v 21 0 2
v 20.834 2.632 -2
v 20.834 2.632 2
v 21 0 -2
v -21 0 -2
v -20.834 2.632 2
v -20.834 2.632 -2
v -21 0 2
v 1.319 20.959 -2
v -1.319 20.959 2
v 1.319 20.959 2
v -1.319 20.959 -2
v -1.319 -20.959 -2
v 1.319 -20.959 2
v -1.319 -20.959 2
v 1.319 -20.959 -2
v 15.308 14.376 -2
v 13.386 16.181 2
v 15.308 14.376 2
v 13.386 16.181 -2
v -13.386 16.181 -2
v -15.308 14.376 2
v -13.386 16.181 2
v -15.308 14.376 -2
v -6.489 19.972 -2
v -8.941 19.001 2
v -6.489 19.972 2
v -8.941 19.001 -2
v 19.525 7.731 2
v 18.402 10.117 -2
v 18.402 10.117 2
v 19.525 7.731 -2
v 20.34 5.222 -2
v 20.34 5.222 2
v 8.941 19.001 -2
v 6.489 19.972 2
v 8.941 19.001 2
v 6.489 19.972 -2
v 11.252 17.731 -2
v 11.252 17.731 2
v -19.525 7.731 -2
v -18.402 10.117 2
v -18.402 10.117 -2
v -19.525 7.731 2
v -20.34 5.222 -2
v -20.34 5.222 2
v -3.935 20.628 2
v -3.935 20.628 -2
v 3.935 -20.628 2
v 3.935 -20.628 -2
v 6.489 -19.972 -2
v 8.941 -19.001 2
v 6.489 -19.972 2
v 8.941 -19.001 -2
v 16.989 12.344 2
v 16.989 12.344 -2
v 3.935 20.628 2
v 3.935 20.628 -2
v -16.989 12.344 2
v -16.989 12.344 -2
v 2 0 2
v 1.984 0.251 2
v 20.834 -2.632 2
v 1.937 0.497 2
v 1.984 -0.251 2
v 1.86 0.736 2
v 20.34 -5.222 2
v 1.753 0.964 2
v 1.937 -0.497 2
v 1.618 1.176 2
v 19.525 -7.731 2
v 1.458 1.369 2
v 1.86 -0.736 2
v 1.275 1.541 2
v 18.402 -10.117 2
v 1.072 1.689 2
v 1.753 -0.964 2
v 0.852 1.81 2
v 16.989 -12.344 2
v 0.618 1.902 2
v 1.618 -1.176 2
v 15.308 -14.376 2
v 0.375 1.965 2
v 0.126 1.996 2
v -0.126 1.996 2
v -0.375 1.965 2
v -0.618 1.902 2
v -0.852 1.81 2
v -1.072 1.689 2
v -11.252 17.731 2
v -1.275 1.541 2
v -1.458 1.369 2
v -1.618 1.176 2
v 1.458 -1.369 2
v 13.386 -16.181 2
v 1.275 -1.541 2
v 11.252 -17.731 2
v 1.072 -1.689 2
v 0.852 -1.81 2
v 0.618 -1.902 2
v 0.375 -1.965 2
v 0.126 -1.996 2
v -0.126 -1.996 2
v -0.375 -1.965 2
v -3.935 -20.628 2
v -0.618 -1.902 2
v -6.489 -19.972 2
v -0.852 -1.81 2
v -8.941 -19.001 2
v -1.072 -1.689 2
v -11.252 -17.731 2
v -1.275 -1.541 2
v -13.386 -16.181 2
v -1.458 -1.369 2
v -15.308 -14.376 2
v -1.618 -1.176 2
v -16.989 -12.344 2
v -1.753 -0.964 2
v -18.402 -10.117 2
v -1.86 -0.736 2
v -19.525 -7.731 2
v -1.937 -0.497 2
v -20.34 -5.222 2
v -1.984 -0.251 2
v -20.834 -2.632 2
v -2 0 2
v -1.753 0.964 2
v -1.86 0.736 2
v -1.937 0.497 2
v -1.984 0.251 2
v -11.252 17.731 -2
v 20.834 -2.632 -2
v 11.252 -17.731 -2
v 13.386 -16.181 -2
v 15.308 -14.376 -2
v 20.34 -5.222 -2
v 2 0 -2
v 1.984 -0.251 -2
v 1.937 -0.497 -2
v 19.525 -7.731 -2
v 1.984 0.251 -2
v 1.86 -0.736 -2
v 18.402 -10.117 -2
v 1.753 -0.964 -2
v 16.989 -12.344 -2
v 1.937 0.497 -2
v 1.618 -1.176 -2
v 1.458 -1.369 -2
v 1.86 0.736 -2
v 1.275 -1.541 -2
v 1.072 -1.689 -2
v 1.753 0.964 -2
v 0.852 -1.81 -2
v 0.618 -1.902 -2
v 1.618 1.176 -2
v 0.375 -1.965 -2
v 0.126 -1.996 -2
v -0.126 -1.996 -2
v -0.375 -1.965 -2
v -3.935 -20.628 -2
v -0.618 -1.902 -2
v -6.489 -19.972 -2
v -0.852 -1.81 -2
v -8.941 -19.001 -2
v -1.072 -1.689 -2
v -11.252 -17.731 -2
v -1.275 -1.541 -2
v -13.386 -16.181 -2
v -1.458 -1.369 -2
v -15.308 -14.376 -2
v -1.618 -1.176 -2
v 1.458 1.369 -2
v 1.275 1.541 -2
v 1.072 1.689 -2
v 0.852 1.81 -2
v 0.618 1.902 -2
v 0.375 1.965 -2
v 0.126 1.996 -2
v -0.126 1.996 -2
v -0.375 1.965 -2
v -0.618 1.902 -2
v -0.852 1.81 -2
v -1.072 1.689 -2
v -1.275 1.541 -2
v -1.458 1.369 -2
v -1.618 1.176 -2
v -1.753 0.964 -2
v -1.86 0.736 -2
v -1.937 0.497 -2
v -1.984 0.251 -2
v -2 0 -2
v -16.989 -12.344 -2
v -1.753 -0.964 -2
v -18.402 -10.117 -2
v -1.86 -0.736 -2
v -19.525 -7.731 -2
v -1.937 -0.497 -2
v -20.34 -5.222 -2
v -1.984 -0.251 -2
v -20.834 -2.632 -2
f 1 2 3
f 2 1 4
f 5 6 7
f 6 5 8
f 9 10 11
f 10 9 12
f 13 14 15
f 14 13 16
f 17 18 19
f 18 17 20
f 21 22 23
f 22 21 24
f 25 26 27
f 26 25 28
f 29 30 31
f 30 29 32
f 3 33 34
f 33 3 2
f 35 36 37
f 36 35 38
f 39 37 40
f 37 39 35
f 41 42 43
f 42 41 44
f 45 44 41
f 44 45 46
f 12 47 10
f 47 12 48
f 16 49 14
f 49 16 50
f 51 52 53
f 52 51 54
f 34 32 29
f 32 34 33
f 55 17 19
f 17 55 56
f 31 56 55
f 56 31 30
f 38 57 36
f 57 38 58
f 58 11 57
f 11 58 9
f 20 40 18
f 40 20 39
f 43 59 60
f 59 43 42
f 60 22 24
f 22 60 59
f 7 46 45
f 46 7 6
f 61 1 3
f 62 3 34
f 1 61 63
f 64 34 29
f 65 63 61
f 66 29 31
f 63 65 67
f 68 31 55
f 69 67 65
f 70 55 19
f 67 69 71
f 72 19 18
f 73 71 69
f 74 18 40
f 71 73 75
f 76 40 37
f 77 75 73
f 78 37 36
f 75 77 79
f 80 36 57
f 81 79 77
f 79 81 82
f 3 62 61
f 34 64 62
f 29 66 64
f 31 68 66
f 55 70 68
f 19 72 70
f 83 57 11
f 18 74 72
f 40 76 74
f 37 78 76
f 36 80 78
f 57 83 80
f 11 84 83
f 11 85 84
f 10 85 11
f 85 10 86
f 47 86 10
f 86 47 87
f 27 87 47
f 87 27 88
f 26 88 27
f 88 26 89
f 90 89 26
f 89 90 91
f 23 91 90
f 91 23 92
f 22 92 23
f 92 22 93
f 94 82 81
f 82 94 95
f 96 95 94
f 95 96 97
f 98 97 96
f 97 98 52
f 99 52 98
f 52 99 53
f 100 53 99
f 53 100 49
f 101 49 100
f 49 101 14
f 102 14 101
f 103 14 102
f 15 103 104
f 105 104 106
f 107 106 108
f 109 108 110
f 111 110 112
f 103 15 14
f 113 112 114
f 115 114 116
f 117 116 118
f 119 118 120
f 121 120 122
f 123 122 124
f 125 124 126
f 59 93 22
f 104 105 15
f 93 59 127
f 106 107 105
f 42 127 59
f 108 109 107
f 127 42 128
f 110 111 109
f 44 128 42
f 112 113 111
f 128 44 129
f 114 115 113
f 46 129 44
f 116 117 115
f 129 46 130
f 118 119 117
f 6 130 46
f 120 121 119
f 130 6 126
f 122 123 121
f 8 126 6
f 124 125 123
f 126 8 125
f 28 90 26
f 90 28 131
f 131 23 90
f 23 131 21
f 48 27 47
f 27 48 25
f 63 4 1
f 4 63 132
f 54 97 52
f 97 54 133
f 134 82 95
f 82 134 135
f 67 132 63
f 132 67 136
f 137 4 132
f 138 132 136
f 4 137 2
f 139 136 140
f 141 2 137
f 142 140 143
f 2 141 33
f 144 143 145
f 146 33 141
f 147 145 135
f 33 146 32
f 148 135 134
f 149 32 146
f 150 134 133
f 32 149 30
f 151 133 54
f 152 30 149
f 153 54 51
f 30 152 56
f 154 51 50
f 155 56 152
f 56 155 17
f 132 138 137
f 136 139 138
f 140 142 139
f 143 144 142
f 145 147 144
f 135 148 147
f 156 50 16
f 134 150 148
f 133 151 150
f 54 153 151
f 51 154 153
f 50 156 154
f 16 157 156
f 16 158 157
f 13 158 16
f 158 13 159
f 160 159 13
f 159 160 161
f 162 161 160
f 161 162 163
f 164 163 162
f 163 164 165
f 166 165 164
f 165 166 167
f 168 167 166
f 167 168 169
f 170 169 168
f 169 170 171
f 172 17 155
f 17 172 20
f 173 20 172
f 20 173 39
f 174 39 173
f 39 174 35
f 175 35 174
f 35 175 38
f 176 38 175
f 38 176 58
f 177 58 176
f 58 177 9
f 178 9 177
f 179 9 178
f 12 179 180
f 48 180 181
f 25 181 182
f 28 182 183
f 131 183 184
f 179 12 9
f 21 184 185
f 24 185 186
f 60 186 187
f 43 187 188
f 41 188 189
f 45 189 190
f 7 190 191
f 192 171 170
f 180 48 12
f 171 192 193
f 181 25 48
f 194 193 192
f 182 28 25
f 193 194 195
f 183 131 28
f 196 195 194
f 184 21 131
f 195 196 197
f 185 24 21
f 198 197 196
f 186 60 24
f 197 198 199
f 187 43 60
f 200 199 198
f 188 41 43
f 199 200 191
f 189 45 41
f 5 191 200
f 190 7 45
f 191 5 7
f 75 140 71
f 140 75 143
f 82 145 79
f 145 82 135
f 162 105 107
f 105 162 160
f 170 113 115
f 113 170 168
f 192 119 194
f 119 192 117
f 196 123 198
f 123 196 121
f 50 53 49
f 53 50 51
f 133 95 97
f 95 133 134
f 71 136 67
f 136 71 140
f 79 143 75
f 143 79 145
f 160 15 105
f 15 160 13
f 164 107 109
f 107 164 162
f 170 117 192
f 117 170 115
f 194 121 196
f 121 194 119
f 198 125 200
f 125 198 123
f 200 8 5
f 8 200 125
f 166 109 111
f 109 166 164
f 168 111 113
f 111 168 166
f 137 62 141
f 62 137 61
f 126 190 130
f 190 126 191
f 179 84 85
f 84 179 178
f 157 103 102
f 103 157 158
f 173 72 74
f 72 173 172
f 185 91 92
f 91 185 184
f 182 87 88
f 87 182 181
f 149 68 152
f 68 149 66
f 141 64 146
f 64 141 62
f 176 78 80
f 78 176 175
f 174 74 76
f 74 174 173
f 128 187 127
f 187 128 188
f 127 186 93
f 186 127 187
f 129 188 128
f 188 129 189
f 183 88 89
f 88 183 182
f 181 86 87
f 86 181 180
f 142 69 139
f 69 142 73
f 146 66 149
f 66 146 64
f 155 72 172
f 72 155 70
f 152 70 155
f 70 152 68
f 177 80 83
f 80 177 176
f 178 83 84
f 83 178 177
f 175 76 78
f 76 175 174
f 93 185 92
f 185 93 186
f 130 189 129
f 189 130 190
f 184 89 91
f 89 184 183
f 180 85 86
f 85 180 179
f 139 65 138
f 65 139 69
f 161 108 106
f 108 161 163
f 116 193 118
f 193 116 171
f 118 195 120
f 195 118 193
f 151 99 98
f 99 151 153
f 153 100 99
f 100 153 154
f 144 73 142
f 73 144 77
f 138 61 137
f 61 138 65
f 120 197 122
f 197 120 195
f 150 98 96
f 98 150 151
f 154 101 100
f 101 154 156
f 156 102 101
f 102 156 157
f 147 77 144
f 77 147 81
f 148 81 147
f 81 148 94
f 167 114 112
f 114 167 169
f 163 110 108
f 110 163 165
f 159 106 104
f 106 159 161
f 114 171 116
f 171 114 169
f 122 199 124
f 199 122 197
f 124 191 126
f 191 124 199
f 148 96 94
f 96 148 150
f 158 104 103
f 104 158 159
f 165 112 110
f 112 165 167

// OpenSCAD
$fn = 50;


difference() {
	union() {
		translate(v = [0, 0, -2.0000000000]) {
			cylinder(h = 4, r = 21.0000000000);
		}
	}
	union() {
		translate(v = [0, 0, -100.0000000000]) {
			cylinder(h = 200, r = 2);
		}
	}
}
